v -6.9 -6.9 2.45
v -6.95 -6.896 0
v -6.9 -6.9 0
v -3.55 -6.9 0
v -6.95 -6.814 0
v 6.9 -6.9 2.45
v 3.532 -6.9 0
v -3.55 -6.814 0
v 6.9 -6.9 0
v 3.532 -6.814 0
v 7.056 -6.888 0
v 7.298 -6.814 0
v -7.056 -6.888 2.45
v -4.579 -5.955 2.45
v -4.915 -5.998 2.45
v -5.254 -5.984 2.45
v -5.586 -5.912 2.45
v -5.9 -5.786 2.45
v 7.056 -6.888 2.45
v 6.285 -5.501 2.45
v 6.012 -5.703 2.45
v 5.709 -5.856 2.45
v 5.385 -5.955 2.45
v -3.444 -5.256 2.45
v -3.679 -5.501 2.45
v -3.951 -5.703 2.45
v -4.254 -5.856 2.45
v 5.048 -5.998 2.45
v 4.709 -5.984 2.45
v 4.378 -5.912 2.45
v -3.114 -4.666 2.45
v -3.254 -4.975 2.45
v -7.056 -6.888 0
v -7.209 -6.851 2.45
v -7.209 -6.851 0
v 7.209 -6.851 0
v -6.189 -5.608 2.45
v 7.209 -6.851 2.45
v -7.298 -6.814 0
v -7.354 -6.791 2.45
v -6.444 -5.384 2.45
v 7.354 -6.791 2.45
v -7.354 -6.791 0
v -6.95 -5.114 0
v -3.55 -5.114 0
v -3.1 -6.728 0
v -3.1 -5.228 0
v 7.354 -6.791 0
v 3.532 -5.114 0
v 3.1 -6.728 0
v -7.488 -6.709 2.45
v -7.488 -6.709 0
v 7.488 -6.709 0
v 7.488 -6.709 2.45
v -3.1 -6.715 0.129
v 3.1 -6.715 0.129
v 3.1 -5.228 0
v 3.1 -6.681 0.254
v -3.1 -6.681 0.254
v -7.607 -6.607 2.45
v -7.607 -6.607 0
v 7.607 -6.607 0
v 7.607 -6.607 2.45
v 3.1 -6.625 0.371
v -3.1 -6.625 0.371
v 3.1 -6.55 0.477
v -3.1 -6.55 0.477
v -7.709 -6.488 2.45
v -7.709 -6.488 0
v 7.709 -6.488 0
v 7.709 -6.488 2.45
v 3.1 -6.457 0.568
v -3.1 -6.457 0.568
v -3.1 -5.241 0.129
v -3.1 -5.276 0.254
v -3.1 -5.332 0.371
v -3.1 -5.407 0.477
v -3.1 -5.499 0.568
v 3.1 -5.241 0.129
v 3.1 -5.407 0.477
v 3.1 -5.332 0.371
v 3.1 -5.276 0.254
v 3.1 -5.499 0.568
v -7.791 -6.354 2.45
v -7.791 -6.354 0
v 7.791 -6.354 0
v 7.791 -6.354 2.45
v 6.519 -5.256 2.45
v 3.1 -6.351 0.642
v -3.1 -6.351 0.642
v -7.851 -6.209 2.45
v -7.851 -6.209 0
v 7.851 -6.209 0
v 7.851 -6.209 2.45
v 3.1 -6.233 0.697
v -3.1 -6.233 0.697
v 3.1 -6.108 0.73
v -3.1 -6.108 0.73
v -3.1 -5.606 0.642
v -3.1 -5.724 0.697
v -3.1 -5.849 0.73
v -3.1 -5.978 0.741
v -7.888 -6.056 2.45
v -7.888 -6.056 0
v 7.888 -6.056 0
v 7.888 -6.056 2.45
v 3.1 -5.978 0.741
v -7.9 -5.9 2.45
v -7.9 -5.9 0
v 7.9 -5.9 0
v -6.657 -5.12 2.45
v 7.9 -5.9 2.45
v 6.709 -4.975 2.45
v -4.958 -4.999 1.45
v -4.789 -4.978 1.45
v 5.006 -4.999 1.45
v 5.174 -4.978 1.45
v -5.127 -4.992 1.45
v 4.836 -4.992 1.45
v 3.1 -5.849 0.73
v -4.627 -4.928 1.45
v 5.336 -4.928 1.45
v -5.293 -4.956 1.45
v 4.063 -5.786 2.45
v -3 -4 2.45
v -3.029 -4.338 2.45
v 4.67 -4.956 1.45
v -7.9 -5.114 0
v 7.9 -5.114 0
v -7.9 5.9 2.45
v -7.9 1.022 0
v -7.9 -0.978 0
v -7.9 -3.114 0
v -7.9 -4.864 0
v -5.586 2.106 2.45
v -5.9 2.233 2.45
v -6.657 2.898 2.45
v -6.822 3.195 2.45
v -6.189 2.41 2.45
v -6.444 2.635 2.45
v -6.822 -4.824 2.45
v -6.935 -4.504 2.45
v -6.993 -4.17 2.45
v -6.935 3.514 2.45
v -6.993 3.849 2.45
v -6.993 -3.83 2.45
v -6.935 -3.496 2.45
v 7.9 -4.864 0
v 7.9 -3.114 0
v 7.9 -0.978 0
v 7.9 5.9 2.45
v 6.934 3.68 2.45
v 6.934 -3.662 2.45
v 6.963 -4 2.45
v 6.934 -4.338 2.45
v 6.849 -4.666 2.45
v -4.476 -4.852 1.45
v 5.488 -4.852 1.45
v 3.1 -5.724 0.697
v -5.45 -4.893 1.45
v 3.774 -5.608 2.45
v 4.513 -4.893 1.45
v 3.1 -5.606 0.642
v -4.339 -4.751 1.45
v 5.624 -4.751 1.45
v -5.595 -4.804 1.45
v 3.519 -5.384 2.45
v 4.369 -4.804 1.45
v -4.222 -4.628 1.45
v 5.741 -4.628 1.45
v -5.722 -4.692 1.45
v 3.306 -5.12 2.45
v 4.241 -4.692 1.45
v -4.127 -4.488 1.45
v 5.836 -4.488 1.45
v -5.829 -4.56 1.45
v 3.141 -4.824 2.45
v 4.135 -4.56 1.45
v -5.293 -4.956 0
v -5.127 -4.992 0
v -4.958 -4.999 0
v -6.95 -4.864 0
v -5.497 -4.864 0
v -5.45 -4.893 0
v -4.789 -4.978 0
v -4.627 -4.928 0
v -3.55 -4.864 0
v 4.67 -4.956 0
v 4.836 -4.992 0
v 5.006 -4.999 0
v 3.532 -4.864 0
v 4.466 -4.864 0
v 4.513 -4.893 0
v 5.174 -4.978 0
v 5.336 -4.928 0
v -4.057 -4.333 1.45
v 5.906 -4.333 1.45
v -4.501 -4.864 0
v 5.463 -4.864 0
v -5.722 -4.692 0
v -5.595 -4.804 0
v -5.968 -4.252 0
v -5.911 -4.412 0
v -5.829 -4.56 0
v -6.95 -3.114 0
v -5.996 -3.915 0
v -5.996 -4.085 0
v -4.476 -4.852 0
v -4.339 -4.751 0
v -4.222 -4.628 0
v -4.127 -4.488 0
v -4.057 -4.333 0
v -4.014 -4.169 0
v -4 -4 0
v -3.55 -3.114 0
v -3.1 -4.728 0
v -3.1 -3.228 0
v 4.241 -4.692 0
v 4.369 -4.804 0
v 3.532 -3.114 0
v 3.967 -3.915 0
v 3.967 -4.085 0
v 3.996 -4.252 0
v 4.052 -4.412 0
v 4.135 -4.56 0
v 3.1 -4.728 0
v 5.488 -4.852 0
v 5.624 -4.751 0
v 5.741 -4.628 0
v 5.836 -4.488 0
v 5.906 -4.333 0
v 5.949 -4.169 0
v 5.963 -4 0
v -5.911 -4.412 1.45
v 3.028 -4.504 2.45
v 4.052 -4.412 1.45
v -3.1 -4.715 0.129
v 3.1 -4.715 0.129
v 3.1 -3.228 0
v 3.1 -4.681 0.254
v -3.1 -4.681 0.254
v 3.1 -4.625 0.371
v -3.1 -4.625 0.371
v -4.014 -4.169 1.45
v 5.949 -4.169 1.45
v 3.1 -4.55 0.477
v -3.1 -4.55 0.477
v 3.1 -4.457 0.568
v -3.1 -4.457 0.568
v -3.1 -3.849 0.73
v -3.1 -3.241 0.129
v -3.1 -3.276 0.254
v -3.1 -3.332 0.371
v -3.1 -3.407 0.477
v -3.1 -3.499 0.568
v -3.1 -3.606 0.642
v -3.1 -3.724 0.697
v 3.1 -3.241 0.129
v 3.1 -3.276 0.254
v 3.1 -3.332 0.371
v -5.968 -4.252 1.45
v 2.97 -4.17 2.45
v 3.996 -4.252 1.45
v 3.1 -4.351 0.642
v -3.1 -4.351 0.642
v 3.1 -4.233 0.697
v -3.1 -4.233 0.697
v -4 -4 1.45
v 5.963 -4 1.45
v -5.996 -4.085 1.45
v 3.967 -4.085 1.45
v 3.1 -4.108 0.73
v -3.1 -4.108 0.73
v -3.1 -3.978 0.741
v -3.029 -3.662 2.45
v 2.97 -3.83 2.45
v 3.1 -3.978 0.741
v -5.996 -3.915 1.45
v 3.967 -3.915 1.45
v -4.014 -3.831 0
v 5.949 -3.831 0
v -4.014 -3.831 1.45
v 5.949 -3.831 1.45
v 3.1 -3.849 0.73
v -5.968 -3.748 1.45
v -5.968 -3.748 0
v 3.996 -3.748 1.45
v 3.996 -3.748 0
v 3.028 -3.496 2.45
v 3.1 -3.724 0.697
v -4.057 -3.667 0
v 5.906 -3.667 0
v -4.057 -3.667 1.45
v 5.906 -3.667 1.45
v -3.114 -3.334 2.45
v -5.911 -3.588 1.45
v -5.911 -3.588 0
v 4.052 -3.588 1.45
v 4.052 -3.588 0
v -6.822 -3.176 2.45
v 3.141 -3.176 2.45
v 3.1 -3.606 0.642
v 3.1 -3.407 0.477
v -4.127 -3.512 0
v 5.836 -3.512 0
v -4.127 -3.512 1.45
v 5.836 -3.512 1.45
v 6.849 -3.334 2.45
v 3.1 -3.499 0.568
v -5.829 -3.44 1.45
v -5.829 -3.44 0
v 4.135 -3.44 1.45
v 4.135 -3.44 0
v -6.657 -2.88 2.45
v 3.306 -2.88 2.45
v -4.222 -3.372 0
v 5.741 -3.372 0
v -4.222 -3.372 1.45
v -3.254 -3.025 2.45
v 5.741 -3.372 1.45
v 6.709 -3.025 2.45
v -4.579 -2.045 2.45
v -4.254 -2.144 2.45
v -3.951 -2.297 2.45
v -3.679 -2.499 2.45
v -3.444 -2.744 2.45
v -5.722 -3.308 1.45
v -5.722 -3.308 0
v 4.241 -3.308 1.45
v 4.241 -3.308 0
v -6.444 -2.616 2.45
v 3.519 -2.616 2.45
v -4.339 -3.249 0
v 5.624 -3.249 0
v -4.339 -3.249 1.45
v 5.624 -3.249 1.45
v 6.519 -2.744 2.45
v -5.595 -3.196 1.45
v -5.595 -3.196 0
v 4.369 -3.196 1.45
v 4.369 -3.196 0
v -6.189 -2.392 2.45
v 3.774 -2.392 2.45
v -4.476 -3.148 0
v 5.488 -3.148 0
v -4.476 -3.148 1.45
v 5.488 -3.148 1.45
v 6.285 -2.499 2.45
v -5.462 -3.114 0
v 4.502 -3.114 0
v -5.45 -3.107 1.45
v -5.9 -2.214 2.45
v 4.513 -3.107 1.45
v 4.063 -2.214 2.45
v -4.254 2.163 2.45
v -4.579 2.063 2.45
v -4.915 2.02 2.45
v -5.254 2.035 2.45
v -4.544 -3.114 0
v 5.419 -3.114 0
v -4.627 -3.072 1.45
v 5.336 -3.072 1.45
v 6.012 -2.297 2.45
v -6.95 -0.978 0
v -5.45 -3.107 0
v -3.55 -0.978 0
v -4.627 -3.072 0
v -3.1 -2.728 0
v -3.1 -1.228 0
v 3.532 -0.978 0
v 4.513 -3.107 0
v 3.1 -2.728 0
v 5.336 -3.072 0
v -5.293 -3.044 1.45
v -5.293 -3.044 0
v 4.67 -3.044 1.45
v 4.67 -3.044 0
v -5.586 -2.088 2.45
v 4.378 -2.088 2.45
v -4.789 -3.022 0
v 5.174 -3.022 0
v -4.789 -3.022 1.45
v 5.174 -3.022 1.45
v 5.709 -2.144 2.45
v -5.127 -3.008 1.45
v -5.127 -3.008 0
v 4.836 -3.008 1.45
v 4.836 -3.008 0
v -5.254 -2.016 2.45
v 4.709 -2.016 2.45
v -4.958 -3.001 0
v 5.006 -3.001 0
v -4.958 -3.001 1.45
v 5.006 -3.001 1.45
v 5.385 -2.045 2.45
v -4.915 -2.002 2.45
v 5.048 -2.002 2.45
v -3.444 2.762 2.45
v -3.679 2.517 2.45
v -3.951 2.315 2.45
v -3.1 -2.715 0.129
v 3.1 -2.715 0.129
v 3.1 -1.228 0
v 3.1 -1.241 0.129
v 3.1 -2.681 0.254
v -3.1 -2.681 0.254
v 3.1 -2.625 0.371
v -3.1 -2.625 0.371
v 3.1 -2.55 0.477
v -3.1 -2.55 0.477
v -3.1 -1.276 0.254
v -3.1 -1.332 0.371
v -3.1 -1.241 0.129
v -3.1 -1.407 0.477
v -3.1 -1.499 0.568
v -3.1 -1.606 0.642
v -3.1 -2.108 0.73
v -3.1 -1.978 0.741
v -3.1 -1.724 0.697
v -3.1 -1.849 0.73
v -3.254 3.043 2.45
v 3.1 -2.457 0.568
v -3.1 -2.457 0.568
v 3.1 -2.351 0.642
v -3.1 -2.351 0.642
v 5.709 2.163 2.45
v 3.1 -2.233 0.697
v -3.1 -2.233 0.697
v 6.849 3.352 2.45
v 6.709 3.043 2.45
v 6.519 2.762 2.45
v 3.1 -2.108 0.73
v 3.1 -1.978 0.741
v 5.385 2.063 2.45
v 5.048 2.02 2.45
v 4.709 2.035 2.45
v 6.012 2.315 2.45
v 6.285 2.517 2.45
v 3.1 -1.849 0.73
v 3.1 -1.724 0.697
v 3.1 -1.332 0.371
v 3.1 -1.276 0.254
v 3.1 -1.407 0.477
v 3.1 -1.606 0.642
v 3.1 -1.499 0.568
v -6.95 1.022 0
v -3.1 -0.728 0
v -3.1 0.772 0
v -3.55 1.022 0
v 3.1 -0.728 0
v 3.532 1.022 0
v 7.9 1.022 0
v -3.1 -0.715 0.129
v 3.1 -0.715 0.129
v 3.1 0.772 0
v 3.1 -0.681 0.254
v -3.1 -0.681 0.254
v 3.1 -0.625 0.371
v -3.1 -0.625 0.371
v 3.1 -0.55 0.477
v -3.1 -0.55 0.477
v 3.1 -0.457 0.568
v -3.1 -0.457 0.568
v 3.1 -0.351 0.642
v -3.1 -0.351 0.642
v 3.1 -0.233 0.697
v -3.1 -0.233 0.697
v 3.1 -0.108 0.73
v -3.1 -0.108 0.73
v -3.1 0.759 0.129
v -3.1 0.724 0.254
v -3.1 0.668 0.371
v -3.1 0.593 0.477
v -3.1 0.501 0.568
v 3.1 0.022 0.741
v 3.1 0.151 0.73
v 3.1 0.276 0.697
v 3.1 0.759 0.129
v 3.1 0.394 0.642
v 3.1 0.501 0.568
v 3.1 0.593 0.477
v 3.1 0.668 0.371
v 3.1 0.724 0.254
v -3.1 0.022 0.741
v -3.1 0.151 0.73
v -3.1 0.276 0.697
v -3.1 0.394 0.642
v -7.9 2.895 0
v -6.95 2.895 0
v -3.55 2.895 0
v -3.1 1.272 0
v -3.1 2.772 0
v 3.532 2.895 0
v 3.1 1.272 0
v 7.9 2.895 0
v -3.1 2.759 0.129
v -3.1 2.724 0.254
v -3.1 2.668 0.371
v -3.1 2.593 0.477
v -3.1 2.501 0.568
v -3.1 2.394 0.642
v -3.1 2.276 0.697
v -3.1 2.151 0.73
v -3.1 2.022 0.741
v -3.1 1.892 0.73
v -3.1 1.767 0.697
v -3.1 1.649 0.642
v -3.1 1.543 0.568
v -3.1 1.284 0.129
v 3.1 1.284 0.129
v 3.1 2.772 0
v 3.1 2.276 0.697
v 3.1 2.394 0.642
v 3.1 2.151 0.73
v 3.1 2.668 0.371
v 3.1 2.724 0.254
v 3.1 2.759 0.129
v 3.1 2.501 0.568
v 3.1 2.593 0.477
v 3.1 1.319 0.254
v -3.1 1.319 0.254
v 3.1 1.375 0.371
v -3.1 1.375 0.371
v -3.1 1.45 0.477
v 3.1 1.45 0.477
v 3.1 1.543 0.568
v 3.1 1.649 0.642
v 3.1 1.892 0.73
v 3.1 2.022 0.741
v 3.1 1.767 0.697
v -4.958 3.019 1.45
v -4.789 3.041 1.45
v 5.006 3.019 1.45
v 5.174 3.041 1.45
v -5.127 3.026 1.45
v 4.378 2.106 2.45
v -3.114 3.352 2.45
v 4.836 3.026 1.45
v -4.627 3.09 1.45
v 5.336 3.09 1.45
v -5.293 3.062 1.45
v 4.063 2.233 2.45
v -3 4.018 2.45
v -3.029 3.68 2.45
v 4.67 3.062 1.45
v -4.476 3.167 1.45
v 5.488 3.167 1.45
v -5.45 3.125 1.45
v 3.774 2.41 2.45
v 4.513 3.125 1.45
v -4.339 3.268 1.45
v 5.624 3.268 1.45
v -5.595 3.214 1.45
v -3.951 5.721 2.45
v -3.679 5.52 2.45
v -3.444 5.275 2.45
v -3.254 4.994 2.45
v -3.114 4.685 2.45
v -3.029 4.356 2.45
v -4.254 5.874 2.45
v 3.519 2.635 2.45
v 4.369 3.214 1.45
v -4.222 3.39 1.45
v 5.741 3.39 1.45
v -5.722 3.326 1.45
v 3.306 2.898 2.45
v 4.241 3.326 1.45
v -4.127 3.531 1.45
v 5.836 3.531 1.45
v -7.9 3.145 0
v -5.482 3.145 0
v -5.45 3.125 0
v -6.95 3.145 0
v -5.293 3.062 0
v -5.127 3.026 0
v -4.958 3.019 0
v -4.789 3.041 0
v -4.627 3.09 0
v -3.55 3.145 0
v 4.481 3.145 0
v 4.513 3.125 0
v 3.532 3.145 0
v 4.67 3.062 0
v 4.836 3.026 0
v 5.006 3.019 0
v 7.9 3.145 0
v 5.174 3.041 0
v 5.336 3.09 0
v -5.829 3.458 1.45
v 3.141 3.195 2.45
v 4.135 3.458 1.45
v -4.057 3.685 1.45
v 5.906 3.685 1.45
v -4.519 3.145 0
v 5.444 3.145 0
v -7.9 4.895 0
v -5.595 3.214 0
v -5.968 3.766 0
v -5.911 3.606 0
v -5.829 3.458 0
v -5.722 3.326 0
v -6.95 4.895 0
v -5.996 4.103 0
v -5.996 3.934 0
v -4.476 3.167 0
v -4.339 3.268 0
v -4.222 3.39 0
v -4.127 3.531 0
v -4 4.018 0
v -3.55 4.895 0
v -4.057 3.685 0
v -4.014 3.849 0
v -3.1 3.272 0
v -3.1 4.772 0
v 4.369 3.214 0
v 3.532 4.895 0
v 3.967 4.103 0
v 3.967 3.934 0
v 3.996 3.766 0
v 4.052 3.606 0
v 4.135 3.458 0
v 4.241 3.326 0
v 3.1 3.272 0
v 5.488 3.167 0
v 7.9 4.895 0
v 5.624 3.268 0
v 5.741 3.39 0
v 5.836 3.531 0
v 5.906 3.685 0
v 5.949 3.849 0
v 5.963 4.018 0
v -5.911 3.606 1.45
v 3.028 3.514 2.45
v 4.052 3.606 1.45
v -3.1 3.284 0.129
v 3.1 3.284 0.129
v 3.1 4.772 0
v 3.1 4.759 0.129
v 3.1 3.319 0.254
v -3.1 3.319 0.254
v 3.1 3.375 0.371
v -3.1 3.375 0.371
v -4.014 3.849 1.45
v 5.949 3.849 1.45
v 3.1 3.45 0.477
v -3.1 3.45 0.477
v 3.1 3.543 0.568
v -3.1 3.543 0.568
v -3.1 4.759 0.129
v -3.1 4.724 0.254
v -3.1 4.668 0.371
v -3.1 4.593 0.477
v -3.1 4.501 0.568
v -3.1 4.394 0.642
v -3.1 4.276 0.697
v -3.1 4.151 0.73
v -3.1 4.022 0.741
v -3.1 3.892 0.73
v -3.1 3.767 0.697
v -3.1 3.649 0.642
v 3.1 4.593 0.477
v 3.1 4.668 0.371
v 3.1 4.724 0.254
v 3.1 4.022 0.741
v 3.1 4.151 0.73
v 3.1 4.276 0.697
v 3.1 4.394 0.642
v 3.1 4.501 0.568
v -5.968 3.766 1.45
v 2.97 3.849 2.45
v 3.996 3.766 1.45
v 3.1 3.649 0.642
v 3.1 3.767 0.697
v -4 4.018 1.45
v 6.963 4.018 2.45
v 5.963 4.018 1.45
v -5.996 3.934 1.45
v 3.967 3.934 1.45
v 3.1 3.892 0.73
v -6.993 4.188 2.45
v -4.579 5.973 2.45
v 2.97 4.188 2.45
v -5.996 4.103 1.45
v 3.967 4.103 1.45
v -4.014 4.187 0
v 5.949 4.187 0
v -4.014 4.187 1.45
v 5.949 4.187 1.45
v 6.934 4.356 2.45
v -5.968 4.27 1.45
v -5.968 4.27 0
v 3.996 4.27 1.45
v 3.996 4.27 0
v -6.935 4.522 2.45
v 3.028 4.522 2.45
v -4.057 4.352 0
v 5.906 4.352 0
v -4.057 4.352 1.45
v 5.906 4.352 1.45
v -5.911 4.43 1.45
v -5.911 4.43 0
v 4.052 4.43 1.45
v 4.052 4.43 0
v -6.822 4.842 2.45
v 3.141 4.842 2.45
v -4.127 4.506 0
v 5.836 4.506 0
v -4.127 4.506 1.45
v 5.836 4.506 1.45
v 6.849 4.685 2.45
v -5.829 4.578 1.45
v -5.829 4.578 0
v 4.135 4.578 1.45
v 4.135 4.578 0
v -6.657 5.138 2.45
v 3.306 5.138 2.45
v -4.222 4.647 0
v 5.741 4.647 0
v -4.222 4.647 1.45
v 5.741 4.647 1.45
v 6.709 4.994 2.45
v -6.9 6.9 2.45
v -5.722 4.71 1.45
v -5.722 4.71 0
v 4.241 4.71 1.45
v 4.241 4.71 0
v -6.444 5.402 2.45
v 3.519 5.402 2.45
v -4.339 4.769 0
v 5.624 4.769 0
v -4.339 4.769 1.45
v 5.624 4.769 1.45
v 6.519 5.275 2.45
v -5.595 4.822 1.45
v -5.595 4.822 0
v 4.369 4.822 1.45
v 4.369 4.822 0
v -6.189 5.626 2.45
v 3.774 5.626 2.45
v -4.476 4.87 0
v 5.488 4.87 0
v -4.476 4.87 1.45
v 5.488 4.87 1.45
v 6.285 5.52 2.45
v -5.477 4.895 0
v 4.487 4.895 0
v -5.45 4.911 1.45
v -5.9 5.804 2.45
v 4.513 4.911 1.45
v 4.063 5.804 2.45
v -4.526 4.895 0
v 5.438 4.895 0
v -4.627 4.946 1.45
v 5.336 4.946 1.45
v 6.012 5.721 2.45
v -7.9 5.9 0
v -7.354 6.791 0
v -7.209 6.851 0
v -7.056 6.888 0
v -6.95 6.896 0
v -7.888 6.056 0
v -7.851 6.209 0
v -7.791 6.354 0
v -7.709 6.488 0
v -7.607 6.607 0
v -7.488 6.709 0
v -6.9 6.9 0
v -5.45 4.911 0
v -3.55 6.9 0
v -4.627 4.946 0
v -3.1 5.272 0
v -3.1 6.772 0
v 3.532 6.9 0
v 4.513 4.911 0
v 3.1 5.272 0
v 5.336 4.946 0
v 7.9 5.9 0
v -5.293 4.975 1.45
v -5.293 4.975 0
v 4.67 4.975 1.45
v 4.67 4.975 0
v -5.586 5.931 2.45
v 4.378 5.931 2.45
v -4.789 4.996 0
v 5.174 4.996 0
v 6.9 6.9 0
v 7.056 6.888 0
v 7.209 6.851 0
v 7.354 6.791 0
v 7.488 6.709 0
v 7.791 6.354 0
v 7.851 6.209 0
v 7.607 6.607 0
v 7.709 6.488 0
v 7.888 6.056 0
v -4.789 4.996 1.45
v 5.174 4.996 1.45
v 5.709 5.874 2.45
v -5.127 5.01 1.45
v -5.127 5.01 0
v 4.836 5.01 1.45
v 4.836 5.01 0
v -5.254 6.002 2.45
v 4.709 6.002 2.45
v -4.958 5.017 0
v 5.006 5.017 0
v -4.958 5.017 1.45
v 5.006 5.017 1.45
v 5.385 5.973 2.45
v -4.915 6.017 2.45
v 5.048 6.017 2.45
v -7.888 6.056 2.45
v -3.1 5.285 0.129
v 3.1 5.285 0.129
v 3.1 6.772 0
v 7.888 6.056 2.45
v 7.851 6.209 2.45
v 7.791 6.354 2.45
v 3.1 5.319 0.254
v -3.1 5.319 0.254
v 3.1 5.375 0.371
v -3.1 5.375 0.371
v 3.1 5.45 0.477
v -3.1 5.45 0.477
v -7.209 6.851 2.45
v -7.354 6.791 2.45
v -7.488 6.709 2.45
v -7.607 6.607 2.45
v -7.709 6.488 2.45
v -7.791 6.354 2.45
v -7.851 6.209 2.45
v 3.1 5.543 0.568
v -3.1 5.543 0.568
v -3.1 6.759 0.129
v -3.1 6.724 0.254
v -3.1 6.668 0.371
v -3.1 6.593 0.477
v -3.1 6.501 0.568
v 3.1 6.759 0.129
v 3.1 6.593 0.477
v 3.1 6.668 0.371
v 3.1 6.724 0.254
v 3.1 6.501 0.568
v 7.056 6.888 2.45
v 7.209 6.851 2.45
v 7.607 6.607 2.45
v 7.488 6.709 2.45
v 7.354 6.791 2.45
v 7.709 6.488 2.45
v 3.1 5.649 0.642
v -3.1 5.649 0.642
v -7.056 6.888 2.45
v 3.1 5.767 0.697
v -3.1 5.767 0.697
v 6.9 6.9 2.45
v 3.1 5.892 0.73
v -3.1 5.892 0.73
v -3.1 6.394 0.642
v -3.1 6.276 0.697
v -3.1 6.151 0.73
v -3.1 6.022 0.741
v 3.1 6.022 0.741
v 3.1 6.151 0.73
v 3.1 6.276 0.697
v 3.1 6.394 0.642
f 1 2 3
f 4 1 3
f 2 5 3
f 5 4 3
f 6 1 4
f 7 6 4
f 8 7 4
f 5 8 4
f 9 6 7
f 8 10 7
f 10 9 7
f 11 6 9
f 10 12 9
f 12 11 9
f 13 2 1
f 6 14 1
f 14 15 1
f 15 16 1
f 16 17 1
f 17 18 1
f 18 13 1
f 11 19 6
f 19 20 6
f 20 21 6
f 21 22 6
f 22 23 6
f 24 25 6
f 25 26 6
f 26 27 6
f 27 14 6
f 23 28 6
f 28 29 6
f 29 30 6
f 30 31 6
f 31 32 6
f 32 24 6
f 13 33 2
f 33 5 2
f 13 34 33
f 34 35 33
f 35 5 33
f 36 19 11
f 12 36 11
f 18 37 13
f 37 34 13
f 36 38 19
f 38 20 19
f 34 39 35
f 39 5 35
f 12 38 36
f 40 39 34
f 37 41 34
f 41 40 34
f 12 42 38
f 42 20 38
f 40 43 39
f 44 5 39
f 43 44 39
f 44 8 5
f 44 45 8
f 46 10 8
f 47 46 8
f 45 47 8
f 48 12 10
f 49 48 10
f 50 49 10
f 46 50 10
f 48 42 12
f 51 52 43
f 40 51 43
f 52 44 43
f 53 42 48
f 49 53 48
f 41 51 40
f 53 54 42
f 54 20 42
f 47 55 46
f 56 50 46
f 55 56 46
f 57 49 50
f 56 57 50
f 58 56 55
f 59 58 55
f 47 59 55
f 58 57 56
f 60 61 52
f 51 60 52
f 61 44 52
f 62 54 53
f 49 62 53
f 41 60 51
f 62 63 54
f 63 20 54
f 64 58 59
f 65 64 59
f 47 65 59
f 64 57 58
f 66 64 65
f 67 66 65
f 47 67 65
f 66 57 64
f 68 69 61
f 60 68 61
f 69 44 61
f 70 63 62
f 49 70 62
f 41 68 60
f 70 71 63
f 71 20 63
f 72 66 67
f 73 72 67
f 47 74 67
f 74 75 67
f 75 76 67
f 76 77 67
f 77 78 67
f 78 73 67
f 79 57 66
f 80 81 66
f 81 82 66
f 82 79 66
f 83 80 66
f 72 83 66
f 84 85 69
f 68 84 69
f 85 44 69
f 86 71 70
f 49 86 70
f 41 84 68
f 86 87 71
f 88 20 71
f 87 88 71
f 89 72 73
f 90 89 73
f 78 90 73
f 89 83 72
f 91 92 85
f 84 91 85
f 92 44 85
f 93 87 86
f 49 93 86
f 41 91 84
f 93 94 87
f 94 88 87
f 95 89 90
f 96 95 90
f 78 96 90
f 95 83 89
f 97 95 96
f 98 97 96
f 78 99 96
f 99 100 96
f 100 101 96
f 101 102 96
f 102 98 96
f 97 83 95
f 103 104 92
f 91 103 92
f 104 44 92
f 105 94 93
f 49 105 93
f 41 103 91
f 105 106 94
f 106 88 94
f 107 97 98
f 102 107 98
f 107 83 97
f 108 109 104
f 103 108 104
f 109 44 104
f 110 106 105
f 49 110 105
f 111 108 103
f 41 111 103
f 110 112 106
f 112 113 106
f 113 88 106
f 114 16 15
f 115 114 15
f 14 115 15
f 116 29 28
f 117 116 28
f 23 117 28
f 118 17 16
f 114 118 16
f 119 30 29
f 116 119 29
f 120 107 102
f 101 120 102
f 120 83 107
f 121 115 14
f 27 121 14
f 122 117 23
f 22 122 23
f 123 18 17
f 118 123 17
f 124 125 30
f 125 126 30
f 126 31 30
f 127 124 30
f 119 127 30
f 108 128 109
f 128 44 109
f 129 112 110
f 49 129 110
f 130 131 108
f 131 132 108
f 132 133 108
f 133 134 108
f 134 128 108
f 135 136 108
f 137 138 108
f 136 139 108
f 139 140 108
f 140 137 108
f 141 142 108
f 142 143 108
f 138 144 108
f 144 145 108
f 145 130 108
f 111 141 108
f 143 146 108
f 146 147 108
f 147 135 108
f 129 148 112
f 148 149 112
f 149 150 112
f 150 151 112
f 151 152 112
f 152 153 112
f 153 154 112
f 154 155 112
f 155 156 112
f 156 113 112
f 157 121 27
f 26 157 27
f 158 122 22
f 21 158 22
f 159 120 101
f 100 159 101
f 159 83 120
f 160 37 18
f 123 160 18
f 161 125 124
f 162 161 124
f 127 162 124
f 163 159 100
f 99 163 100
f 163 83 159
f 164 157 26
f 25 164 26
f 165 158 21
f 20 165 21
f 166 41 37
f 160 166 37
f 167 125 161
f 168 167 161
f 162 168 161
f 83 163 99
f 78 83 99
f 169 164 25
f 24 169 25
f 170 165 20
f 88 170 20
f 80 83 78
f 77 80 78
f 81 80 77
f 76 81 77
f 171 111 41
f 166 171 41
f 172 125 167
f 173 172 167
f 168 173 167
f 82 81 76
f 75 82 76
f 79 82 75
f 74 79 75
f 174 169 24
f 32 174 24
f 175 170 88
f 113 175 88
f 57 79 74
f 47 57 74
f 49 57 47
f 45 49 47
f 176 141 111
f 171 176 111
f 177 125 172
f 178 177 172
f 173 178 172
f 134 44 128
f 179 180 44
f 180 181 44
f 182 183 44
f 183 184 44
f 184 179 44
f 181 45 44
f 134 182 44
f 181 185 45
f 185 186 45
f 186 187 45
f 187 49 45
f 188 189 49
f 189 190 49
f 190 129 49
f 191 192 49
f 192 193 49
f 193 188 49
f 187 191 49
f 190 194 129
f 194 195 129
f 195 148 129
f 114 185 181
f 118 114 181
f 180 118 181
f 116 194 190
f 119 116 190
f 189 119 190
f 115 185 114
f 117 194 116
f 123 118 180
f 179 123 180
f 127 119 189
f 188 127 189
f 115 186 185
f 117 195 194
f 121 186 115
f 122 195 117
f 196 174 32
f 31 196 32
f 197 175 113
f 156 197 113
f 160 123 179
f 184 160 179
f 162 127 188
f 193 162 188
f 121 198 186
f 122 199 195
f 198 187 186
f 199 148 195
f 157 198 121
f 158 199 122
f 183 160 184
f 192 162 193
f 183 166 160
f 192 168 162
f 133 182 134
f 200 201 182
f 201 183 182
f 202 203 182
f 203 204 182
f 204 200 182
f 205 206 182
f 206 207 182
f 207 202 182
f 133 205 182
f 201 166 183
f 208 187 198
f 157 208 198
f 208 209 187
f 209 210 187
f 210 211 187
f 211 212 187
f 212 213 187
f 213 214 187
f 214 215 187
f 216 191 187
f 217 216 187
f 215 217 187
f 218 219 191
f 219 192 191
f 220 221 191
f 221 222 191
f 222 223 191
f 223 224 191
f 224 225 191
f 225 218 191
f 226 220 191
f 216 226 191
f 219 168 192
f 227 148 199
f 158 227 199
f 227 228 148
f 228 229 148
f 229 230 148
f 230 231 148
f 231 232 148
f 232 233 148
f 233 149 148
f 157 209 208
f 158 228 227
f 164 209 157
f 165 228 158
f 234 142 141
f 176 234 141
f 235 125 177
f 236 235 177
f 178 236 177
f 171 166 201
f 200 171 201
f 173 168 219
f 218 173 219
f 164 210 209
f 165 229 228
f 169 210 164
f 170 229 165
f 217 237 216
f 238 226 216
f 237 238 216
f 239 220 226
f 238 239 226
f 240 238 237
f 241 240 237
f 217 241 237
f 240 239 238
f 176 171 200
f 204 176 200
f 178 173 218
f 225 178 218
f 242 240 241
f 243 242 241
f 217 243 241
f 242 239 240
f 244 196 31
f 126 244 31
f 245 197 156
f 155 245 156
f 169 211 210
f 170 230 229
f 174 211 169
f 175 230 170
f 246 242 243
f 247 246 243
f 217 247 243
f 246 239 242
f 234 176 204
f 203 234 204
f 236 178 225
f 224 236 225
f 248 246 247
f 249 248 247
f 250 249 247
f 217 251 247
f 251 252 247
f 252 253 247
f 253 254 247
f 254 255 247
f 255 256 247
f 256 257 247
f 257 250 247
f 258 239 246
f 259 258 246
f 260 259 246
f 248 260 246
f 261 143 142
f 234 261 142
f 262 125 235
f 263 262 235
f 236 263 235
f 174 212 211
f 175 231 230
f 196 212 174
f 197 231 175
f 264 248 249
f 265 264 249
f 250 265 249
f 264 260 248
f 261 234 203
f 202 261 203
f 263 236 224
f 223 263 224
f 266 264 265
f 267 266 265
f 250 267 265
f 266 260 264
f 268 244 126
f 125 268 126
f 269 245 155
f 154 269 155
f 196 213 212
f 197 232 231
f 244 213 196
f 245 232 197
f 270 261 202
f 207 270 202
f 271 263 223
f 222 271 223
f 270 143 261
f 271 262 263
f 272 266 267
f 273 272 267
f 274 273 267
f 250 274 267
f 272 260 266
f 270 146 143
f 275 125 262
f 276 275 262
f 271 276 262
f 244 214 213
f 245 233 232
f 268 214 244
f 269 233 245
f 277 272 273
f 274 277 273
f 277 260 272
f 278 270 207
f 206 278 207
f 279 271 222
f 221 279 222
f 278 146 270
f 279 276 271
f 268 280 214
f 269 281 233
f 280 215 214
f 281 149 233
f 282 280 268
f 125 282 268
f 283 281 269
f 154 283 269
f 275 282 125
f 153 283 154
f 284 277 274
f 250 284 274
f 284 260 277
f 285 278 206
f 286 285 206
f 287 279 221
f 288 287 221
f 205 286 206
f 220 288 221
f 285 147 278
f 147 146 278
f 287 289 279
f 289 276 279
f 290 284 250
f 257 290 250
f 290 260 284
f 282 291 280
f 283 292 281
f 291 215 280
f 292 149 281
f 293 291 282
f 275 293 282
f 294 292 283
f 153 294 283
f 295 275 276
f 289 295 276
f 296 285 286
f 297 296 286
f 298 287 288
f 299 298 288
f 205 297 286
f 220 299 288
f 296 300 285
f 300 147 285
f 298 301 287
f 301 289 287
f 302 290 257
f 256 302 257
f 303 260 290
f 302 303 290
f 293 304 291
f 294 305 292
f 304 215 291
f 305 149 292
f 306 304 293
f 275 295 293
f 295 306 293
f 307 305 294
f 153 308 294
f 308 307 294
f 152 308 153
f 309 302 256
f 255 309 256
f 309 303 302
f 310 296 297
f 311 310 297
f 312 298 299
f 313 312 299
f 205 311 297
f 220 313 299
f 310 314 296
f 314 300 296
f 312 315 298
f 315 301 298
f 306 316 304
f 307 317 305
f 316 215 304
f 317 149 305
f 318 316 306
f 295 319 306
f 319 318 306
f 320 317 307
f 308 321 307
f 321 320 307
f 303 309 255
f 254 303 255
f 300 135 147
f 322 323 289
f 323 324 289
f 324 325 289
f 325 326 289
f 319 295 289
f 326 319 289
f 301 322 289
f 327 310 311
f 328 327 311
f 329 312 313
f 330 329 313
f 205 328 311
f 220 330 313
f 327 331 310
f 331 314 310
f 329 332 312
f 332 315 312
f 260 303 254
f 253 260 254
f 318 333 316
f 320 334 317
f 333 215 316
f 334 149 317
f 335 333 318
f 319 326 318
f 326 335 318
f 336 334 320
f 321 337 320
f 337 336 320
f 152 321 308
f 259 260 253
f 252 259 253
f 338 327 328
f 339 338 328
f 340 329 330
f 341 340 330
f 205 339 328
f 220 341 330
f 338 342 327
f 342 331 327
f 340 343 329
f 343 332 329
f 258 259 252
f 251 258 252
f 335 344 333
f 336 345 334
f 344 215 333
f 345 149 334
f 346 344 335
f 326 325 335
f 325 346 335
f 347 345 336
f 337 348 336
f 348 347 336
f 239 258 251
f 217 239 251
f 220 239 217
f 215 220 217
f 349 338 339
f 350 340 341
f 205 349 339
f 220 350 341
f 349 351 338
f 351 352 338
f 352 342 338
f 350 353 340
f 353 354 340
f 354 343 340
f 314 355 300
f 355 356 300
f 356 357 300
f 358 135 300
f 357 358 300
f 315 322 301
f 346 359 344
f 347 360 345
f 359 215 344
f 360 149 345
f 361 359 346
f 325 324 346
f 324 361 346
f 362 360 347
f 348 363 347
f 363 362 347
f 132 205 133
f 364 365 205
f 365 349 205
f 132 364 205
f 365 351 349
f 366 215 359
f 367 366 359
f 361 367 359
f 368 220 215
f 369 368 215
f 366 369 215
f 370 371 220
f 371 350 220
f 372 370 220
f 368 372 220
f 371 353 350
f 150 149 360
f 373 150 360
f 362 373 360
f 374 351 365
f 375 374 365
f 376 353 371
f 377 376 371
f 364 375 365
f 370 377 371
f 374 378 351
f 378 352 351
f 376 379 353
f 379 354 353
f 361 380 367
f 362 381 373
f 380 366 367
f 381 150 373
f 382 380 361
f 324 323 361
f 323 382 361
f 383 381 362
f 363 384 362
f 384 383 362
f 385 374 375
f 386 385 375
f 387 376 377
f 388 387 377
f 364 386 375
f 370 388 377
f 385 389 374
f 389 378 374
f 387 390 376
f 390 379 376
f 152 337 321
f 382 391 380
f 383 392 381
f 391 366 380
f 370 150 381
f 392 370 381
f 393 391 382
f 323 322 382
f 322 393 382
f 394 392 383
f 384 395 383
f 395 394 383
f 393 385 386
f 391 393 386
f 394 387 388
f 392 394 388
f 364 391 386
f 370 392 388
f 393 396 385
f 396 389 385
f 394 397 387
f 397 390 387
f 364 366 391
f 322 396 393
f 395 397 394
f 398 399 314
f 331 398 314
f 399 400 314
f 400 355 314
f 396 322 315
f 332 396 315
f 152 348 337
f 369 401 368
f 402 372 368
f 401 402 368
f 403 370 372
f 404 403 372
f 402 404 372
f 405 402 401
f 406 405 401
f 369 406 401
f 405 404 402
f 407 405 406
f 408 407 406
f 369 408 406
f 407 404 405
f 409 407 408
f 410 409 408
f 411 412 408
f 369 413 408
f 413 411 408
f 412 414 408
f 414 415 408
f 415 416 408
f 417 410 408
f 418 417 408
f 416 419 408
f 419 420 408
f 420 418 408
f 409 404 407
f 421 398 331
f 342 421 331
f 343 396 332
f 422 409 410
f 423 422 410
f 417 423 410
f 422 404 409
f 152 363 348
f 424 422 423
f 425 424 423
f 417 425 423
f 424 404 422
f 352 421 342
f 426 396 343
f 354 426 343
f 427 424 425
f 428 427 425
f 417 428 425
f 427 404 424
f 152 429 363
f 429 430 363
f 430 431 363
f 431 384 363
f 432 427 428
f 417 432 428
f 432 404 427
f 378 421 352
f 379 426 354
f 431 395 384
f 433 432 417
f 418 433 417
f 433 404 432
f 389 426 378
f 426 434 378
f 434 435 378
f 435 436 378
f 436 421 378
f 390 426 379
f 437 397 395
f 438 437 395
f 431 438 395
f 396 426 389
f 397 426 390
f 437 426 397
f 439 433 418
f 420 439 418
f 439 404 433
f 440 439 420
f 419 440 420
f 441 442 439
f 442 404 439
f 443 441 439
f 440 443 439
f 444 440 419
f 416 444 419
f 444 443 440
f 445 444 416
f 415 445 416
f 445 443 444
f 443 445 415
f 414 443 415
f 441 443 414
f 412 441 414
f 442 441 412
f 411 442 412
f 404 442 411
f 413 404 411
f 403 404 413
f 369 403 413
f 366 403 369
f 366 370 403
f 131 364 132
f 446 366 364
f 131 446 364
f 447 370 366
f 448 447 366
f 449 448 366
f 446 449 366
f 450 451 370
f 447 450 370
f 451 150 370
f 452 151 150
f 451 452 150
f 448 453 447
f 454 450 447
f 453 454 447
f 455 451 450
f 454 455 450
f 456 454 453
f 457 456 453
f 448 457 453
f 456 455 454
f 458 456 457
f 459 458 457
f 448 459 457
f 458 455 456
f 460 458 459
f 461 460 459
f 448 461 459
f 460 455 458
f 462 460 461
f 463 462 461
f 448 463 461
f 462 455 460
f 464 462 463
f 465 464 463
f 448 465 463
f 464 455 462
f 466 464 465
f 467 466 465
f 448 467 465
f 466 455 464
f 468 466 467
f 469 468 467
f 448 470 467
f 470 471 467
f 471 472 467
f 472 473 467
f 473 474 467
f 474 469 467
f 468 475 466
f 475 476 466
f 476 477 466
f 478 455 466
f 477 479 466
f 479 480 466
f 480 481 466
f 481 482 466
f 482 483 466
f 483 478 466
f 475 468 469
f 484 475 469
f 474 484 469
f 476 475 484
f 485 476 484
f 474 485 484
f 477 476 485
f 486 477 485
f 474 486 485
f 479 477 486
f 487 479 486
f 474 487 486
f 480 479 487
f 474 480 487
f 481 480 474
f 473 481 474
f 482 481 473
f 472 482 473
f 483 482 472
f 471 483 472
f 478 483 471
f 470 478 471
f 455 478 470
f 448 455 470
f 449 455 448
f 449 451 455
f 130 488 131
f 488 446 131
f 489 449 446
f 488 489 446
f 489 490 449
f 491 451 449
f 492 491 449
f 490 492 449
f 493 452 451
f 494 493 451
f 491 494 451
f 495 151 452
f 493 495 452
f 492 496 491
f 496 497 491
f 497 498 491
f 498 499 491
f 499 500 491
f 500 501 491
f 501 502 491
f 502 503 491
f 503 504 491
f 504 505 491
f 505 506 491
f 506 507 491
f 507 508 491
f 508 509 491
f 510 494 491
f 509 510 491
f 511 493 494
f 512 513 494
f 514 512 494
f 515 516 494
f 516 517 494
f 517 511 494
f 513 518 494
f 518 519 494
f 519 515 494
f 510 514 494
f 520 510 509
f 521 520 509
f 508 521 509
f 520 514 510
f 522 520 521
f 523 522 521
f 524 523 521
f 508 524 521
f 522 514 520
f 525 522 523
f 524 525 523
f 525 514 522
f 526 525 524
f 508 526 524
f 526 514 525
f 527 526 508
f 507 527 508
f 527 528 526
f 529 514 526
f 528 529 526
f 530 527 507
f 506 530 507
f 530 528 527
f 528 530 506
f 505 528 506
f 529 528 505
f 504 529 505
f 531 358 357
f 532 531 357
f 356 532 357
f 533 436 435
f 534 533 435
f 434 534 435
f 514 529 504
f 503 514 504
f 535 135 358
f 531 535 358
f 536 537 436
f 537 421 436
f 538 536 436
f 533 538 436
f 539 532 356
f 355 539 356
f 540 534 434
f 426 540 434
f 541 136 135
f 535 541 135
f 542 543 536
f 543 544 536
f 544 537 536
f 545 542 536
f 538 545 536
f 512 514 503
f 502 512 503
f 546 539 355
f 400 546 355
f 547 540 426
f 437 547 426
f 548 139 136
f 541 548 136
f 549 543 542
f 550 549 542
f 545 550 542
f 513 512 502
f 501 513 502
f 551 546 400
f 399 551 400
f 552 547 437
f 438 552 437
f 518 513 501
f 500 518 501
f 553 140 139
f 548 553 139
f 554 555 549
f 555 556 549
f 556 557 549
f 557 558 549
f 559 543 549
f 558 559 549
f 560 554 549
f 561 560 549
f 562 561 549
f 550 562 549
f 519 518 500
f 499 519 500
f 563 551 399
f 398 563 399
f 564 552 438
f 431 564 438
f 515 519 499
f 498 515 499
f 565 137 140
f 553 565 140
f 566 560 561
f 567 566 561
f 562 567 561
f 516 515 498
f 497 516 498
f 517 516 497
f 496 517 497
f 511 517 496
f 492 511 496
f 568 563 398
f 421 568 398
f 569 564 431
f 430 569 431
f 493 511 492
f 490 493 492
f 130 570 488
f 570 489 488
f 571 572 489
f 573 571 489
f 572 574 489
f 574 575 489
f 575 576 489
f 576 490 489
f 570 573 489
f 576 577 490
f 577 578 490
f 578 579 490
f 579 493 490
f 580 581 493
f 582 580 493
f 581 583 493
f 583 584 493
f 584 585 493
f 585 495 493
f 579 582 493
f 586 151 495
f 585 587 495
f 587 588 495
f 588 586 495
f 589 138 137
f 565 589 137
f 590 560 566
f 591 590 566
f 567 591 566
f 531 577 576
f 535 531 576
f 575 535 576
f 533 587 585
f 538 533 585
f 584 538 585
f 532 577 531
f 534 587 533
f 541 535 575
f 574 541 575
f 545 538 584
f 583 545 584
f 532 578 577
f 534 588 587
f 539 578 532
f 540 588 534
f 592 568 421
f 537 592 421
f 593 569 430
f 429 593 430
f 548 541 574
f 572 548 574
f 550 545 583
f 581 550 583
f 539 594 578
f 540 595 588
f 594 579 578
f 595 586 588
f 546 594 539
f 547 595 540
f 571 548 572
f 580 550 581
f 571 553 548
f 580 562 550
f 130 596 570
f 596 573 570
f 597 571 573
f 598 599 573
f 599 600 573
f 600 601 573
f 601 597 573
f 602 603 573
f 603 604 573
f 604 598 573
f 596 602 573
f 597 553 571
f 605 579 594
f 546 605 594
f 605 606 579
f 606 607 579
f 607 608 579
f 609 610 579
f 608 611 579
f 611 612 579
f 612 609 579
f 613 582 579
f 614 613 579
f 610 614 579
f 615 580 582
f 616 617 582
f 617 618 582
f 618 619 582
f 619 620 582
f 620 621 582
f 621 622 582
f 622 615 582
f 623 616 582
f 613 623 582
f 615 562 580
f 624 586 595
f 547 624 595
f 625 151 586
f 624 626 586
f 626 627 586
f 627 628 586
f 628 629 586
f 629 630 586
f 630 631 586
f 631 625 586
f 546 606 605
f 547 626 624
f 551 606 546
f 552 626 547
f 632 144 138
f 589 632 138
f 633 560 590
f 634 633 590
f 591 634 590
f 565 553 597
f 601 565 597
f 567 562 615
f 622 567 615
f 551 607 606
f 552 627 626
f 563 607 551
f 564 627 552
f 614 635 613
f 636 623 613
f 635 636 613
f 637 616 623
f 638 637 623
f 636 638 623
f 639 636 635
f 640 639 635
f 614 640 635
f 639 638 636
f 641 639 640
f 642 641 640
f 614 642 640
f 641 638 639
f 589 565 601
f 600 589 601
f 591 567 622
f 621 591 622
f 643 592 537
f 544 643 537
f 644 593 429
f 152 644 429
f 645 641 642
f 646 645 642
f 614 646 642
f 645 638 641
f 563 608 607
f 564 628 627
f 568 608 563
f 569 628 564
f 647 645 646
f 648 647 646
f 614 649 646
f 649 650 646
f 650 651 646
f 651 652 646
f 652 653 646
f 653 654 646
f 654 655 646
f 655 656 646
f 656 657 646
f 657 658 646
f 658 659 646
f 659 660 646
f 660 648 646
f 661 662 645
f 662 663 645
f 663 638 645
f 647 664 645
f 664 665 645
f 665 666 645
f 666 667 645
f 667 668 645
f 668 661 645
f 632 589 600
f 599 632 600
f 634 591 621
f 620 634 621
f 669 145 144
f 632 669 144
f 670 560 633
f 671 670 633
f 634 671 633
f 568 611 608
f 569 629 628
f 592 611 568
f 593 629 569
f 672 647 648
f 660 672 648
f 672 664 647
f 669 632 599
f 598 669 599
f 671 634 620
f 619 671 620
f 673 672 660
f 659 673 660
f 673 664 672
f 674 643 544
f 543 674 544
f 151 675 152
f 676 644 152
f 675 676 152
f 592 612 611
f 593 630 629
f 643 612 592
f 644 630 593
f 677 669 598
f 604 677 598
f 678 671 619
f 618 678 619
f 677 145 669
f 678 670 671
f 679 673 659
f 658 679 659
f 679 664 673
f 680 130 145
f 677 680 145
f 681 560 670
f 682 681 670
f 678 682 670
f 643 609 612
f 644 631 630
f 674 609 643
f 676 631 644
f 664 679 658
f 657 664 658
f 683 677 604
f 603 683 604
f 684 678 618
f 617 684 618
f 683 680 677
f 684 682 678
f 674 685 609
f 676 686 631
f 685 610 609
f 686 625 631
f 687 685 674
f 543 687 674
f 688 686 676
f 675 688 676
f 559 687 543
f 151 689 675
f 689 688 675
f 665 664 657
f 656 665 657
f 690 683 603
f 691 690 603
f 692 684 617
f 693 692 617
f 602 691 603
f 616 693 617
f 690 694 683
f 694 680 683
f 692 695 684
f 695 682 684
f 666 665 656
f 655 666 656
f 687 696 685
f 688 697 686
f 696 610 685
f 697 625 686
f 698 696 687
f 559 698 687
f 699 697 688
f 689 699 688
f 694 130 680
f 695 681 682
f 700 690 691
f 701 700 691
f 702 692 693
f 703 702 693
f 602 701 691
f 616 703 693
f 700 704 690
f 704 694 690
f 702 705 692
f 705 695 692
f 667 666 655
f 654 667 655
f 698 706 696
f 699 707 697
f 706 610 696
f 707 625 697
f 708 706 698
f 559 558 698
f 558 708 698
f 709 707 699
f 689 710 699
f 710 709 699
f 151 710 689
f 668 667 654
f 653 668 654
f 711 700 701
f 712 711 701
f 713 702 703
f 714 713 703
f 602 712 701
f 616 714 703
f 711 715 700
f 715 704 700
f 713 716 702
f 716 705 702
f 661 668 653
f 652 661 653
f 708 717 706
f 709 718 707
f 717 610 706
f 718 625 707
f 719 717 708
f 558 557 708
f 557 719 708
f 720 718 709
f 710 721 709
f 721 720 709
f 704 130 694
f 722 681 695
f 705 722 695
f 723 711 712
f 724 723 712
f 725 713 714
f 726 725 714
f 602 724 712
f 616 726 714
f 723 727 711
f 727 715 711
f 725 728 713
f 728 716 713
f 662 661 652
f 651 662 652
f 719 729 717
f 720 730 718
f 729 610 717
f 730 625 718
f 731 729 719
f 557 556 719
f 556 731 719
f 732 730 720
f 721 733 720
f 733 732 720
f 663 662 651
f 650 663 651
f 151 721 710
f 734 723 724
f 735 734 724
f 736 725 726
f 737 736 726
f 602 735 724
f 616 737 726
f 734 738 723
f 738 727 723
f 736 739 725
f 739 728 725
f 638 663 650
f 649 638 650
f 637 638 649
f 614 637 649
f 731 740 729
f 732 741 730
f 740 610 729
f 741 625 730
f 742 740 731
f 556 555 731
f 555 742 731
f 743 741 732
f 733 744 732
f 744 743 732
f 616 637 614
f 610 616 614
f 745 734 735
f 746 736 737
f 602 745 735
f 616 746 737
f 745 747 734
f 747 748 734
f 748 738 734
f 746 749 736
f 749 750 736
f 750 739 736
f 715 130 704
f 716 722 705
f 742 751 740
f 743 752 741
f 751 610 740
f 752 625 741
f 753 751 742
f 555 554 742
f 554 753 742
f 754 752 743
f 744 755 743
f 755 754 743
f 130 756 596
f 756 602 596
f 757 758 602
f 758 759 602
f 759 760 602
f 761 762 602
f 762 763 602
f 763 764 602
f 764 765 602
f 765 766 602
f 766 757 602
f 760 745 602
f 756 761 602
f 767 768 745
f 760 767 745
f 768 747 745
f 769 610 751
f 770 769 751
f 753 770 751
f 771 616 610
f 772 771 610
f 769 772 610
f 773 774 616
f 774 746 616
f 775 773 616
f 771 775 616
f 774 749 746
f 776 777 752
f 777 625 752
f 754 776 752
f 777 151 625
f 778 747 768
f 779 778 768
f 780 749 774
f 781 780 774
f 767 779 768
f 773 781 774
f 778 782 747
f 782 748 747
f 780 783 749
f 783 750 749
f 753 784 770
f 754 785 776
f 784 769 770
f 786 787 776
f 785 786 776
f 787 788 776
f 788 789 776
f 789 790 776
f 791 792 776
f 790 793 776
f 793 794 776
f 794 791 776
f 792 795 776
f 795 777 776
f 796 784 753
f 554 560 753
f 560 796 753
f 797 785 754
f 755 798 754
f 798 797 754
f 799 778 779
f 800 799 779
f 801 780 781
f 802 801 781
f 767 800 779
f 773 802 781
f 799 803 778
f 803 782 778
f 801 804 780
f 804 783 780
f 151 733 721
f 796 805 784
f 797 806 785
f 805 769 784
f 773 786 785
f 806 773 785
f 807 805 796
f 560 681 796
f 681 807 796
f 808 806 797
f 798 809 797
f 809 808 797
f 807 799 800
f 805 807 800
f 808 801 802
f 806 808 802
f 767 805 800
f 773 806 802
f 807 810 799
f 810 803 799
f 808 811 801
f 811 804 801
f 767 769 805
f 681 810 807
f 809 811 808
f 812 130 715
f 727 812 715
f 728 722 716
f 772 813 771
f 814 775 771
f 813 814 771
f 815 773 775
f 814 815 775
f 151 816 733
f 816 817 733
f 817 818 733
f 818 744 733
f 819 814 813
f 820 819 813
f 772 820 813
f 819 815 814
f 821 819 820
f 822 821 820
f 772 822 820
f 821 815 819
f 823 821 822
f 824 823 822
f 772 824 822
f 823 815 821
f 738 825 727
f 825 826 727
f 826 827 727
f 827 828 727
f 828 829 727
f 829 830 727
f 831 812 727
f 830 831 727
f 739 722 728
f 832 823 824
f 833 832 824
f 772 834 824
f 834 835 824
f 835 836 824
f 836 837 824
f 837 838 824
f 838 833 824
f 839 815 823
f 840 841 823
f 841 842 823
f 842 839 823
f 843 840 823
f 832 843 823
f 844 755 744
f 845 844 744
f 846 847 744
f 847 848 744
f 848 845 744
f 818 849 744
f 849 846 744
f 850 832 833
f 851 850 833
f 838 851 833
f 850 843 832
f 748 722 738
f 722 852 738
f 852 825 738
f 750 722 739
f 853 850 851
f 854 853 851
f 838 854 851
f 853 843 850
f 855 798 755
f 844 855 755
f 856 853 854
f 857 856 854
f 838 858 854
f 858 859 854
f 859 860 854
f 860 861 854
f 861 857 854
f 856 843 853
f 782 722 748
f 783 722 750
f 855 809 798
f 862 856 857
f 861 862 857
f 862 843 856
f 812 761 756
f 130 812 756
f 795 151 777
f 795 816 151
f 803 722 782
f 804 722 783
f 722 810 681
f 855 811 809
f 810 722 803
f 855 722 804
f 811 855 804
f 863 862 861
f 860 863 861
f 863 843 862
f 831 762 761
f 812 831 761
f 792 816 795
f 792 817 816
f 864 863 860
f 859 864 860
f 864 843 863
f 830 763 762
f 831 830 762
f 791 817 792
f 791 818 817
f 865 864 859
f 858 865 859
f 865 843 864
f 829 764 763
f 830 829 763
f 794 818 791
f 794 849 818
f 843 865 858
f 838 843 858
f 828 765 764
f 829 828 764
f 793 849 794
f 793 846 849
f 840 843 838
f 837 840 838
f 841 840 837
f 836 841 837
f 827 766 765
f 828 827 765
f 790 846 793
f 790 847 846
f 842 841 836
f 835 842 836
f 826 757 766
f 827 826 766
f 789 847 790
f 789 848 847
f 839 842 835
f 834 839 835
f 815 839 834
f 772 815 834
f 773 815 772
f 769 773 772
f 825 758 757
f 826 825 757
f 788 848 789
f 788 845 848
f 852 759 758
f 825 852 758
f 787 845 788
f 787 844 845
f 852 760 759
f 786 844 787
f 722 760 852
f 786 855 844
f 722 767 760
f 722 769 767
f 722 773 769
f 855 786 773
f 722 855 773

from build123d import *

# Parameters (mm, degrees)
EXTRUDE_1_DEPTH          = 2.45
CUT_EXTRUDE_1_DEPTH      = 3.1
CUT_EXTRUDE_1_DEPTH_BACK = 3.1
SKETCH_4_R               = 1
CUT_EXTRUDE_2_DEPTH      = 6.1
CHAMFER_1_SIZE           = 1


with BuildPart() as part:
    # 草图1 → 凸台-拉伸1 (new body)
    with BuildSketch(Plane.XY):
        with BuildLine():
            Line((-6.9, 6.9), (6.9, 6.9))
            ThreePointArc((6.9, 6.9), (7.607106781, 6.607106781), (7.9, 5.9))
            Line((7.9, 5.9), (7.9, -5.9))
            ThreePointArc((7.9, -5.9), (7.607106781, -6.607106781), (6.9, -6.9))
            Line((6.9, -6.9), (-6.9, -6.9))
            ThreePointArc((-6.9, -6.9), (-7.607106781, -6.607106781), (-7.9, -5.9))
            Line((-7.9, -5.9), (-7.9, 5.9))
            ThreePointArc((-7.9, 5.9), (-7.607106781, 6.607106781), (-6.9, 6.9))
        make_face()
    extrude(amount=EXTRUDE_1_DEPTH)

    # 草图3 → 切除-拉伸1 (cut, two sides: drawn at the far end of the back side and taken through both)
    with BuildSketch(Plane(origin=(0, 0, 0), x_dir=(0, 0, -1), z_dir=(1, 0, 0)).offset(-CUT_EXTRUDE_1_DEPTH_BACK)):
        with BuildLine():
            Line((0.008677119, -0.72827251), (0.008677119, 0.77172749))
            ThreePointArc((0.008677119, 0.77172749), (-0.741322881, 0.02172749), (0.008677119, -0.72827251))
        make_face()
        with BuildLine():
            Line((0.008677119, -6.72827251), (0.008677119, -5.22827251))
            ThreePointArc((0.008677119, -5.22827251), (-0.741322881, -5.97827251), (0.008677119, -6.72827251))
        make_face()
        with BuildLine():
            Line((0.008677119, -4.72827251), (0.008677119, -3.22827251))
            ThreePointArc((0.008677119, -3.22827251), (-0.741322881, -3.97827251), (0.008677119, -4.72827251))
        make_face()
        with BuildLine():
            Line((0.008677119, -2.72827251), (0.008677119, -1.22827251))
            ThreePointArc((0.008677119, -1.22827251), (-0.741322881, -1.97827251), (0.008677119, -2.72827251))
        make_face()
        with BuildLine():
            Line((0.008677119, 1.27172749), (0.008677119, 2.77172749))
            ThreePointArc((0.008677119, 2.77172749), (-0.741322881, 2.02172749), (0.008677119, 1.27172749))
        make_face()
        with BuildLine():
            Line((0.008677119, 3.27172749), (0.008677119, 4.77172749))
            ThreePointArc((0.008677119, 4.77172749), (-0.741322881, 4.02172749), (0.008677119, 3.27172749))
        make_face()
        with BuildLine():
            Line((0.008677119, 5.27172749), (0.008677119, 6.77172749))
            ThreePointArc((0.008677119, 6.77172749), (-0.741322881, 6.02172749), (0.008677119, 5.27172749))
        make_face()
    extrude(amount=CUT_EXTRUDE_1_DEPTH + CUT_EXTRUDE_1_DEPTH_BACK, mode=Mode.SUBTRACT)

    # 草图4 → 切除-拉伸2 (cut)
    with BuildSketch(Plane.XY.offset(2.45)):
        with Locations((-5, -4)):
            Circle(SKETCH_4_R)
        with Locations((4.96323916, -4)):
            Circle(SKETCH_4_R)
        with Locations((4.96323916, 4.01838042)):
            Circle(SKETCH_4_R)
        with Locations((-5, 4.01838042)):
            Circle(SKETCH_4_R)
    extrude(amount=-CUT_EXTRUDE_2_DEPTH, mode=Mode.SUBTRACT)

    # 倒角1
    chamfer_1_edges = [part.edges().sort_by_distance(p)[0] for p in [
        (-6, 4.01838042, 2.45),
        (3.96323916, 4.01838042, 2.45),
        (3.96323916, -4, 2.45),
        (-6, -4, 2.45),
    ]]
    chamfer(chamfer_1_edges, length=CHAMFER_1_SIZE)


solid = part.part
